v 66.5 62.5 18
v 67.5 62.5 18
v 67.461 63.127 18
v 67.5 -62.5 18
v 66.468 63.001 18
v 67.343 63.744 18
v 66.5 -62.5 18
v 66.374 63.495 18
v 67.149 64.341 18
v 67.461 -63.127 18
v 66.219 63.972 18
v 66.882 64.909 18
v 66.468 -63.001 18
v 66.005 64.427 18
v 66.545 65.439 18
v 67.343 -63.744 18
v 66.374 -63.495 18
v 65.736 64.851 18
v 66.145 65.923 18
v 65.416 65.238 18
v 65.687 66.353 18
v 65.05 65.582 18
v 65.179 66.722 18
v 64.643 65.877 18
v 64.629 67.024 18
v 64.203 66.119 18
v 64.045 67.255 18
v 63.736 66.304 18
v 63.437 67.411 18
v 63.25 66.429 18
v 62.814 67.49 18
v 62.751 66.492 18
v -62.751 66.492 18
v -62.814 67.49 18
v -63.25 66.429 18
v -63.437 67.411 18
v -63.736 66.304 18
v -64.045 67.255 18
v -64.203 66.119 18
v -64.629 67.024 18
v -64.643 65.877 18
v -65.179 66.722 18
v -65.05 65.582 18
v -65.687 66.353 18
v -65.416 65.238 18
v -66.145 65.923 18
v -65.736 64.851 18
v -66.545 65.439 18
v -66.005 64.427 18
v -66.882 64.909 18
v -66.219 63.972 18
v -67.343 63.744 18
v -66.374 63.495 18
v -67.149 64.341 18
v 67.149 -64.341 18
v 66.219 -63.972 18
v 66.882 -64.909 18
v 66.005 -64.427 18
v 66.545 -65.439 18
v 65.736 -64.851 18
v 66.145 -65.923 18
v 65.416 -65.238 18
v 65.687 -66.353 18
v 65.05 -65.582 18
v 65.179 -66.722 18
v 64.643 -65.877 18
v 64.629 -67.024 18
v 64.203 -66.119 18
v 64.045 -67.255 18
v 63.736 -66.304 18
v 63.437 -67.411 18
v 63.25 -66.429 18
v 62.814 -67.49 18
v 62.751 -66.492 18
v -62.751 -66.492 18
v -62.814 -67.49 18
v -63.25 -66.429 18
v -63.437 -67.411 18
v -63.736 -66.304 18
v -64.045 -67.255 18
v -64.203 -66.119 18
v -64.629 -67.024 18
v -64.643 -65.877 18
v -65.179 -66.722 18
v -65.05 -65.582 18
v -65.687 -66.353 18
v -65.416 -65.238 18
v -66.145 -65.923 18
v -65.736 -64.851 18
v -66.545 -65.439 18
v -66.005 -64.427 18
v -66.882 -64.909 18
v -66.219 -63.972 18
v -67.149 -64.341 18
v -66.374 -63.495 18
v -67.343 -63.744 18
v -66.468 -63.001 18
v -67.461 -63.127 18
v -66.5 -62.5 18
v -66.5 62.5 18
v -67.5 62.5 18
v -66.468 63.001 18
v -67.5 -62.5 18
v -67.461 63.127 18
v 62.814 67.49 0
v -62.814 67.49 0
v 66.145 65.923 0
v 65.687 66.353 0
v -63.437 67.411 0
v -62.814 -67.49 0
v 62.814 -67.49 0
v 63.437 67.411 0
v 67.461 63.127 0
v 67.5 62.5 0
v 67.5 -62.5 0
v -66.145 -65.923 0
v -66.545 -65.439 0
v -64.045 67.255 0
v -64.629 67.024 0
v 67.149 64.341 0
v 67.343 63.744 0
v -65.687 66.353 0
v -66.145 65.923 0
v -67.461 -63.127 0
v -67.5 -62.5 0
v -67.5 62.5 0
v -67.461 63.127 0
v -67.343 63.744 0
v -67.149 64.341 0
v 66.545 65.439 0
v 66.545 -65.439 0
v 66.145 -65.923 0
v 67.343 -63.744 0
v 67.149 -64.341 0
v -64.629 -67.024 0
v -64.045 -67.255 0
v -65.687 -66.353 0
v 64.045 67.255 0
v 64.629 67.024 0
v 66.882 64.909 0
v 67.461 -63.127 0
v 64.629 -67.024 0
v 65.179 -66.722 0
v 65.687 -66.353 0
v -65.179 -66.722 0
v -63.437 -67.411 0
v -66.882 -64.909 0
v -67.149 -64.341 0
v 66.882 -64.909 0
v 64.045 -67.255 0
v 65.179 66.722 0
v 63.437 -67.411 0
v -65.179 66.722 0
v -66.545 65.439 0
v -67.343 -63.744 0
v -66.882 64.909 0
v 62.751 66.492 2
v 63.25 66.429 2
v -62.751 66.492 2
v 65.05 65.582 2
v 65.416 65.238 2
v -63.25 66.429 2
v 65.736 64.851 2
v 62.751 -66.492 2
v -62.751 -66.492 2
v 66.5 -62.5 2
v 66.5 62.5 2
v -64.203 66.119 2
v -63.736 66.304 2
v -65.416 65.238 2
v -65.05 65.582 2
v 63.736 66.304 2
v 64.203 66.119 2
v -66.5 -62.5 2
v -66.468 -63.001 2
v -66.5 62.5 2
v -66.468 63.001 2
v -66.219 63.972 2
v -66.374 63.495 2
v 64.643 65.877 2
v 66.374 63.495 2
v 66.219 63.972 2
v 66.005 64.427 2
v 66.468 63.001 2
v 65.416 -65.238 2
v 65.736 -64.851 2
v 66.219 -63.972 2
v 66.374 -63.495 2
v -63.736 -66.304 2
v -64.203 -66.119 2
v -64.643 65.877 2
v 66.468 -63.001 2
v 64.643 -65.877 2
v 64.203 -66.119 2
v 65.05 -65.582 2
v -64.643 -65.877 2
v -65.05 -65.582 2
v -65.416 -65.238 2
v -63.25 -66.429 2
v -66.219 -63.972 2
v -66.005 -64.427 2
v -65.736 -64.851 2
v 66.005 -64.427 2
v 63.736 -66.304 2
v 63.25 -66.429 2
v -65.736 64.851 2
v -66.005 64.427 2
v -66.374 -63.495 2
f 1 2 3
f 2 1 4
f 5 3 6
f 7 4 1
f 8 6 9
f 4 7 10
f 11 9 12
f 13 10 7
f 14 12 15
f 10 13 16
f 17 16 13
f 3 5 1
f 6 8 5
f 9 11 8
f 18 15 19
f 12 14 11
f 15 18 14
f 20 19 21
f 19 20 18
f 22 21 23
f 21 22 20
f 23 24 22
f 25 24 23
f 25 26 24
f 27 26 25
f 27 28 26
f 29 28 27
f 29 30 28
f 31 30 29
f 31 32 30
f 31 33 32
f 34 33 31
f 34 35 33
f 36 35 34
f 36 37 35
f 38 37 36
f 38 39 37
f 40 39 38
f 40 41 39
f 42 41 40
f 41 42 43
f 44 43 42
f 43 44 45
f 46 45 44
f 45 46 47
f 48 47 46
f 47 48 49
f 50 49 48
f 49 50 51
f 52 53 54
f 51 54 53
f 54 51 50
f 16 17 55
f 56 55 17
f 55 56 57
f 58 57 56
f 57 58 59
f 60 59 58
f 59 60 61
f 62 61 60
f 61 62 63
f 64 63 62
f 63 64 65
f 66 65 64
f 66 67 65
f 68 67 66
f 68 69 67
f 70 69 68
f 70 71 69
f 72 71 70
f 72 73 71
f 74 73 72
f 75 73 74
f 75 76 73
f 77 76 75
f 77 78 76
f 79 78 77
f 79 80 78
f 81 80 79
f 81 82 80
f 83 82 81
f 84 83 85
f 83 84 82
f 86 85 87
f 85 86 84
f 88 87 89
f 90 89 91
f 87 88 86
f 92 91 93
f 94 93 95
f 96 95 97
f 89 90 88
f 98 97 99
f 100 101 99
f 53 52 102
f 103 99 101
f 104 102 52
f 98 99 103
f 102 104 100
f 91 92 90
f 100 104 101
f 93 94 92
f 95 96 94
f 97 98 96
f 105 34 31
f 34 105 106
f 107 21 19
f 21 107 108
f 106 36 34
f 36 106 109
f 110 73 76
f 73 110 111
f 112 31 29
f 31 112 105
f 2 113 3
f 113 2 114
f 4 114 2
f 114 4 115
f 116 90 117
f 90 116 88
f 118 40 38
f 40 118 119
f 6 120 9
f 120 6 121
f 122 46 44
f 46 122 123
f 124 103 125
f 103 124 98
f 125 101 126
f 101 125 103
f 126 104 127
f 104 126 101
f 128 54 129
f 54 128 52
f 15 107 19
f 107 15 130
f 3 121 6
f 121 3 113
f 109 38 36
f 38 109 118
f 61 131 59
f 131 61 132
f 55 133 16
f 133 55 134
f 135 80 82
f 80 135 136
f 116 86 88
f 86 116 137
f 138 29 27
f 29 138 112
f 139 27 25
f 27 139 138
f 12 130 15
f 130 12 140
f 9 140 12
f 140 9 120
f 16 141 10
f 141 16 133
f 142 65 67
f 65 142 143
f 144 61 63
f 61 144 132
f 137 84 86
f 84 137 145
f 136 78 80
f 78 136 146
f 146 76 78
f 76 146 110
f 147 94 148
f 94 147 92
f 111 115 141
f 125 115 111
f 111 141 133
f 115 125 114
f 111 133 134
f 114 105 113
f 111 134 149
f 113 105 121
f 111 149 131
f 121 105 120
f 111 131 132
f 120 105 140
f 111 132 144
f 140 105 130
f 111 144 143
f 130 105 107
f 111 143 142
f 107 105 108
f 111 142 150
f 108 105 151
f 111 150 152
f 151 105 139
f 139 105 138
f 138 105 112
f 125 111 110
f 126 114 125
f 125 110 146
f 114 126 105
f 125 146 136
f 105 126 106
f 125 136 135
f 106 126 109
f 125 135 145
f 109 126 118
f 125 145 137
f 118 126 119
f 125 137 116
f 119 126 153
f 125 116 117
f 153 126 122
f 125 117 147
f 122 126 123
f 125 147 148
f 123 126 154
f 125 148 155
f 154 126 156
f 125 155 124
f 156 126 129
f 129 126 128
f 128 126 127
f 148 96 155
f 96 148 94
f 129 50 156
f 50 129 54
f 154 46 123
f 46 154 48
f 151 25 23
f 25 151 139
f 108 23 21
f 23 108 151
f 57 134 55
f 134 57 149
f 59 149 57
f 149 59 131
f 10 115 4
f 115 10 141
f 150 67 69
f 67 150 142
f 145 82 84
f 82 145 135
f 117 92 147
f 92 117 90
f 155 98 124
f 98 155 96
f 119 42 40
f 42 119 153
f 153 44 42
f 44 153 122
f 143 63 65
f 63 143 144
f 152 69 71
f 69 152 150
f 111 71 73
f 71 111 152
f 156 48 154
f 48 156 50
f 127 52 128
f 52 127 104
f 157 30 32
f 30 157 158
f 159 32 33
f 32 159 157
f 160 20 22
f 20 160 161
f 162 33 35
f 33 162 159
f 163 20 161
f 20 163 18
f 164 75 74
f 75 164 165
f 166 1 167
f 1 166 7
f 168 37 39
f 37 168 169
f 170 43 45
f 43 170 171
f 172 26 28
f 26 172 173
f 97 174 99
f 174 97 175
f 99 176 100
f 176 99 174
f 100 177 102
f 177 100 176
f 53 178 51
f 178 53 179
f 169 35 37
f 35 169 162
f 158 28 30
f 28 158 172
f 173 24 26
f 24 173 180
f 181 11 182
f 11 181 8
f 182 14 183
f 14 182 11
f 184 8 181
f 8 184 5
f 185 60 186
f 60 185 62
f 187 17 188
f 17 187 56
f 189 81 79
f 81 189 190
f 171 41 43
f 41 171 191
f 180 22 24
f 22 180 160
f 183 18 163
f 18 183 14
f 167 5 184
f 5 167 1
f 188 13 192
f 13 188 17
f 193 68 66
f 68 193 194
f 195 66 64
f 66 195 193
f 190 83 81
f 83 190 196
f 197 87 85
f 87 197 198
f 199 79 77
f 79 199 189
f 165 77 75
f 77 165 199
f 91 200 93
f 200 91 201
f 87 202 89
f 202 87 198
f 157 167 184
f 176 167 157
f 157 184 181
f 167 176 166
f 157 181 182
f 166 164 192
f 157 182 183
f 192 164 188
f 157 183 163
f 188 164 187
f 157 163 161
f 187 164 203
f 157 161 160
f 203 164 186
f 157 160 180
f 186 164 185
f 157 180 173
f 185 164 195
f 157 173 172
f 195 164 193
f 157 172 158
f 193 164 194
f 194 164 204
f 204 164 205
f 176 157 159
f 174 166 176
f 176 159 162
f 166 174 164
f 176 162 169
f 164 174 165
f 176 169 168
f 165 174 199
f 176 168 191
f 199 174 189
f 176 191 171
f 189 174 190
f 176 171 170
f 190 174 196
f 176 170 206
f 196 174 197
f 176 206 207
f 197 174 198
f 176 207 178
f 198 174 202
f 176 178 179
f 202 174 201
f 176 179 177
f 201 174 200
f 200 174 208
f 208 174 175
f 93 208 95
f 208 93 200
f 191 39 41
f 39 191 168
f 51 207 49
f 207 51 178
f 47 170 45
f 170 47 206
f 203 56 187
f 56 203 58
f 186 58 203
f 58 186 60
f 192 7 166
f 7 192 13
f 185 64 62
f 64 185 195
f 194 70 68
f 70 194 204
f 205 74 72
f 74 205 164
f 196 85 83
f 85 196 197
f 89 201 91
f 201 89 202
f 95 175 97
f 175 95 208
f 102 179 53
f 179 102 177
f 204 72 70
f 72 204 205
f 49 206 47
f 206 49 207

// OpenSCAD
$fn = 50;


difference() {
	union() {
		hull() {
			translate(v = [-62.5000000000, 62.5000000000, 0]) {
				cylinder(h = 18, r = 5);
			}
			translate(v = [62.5000000000, 62.5000000000, 0]) {
				cylinder(h = 18, r = 5);
			}
			translate(v = [-62.5000000000, -62.5000000000, 0]) {
				cylinder(h = 18, r = 5);
			}
			translate(v = [62.5000000000, -62.5000000000, 0]) {
				cylinder(h = 18, r = 5);
			}
		}
	}
	union() {
		translate(v = [0, 0, 2]) {
			hull() {
				translate(v = [-62.5000000000, 62.5000000000, 0]) {
					cylinder(h = 16, r = 4);
				}
				translate(v = [62.5000000000, 62.5000000000, 0]) {
					cylinder(h = 16, r = 4);
				}
				translate(v = [-62.5000000000, -62.5000000000, 0]) {
					cylinder(h = 16, r = 4);
				}
				translate(v = [62.5000000000, -62.5000000000, 0]) {
					cylinder(h = 16, r = 4);
				}
			}
		}
	}
}
